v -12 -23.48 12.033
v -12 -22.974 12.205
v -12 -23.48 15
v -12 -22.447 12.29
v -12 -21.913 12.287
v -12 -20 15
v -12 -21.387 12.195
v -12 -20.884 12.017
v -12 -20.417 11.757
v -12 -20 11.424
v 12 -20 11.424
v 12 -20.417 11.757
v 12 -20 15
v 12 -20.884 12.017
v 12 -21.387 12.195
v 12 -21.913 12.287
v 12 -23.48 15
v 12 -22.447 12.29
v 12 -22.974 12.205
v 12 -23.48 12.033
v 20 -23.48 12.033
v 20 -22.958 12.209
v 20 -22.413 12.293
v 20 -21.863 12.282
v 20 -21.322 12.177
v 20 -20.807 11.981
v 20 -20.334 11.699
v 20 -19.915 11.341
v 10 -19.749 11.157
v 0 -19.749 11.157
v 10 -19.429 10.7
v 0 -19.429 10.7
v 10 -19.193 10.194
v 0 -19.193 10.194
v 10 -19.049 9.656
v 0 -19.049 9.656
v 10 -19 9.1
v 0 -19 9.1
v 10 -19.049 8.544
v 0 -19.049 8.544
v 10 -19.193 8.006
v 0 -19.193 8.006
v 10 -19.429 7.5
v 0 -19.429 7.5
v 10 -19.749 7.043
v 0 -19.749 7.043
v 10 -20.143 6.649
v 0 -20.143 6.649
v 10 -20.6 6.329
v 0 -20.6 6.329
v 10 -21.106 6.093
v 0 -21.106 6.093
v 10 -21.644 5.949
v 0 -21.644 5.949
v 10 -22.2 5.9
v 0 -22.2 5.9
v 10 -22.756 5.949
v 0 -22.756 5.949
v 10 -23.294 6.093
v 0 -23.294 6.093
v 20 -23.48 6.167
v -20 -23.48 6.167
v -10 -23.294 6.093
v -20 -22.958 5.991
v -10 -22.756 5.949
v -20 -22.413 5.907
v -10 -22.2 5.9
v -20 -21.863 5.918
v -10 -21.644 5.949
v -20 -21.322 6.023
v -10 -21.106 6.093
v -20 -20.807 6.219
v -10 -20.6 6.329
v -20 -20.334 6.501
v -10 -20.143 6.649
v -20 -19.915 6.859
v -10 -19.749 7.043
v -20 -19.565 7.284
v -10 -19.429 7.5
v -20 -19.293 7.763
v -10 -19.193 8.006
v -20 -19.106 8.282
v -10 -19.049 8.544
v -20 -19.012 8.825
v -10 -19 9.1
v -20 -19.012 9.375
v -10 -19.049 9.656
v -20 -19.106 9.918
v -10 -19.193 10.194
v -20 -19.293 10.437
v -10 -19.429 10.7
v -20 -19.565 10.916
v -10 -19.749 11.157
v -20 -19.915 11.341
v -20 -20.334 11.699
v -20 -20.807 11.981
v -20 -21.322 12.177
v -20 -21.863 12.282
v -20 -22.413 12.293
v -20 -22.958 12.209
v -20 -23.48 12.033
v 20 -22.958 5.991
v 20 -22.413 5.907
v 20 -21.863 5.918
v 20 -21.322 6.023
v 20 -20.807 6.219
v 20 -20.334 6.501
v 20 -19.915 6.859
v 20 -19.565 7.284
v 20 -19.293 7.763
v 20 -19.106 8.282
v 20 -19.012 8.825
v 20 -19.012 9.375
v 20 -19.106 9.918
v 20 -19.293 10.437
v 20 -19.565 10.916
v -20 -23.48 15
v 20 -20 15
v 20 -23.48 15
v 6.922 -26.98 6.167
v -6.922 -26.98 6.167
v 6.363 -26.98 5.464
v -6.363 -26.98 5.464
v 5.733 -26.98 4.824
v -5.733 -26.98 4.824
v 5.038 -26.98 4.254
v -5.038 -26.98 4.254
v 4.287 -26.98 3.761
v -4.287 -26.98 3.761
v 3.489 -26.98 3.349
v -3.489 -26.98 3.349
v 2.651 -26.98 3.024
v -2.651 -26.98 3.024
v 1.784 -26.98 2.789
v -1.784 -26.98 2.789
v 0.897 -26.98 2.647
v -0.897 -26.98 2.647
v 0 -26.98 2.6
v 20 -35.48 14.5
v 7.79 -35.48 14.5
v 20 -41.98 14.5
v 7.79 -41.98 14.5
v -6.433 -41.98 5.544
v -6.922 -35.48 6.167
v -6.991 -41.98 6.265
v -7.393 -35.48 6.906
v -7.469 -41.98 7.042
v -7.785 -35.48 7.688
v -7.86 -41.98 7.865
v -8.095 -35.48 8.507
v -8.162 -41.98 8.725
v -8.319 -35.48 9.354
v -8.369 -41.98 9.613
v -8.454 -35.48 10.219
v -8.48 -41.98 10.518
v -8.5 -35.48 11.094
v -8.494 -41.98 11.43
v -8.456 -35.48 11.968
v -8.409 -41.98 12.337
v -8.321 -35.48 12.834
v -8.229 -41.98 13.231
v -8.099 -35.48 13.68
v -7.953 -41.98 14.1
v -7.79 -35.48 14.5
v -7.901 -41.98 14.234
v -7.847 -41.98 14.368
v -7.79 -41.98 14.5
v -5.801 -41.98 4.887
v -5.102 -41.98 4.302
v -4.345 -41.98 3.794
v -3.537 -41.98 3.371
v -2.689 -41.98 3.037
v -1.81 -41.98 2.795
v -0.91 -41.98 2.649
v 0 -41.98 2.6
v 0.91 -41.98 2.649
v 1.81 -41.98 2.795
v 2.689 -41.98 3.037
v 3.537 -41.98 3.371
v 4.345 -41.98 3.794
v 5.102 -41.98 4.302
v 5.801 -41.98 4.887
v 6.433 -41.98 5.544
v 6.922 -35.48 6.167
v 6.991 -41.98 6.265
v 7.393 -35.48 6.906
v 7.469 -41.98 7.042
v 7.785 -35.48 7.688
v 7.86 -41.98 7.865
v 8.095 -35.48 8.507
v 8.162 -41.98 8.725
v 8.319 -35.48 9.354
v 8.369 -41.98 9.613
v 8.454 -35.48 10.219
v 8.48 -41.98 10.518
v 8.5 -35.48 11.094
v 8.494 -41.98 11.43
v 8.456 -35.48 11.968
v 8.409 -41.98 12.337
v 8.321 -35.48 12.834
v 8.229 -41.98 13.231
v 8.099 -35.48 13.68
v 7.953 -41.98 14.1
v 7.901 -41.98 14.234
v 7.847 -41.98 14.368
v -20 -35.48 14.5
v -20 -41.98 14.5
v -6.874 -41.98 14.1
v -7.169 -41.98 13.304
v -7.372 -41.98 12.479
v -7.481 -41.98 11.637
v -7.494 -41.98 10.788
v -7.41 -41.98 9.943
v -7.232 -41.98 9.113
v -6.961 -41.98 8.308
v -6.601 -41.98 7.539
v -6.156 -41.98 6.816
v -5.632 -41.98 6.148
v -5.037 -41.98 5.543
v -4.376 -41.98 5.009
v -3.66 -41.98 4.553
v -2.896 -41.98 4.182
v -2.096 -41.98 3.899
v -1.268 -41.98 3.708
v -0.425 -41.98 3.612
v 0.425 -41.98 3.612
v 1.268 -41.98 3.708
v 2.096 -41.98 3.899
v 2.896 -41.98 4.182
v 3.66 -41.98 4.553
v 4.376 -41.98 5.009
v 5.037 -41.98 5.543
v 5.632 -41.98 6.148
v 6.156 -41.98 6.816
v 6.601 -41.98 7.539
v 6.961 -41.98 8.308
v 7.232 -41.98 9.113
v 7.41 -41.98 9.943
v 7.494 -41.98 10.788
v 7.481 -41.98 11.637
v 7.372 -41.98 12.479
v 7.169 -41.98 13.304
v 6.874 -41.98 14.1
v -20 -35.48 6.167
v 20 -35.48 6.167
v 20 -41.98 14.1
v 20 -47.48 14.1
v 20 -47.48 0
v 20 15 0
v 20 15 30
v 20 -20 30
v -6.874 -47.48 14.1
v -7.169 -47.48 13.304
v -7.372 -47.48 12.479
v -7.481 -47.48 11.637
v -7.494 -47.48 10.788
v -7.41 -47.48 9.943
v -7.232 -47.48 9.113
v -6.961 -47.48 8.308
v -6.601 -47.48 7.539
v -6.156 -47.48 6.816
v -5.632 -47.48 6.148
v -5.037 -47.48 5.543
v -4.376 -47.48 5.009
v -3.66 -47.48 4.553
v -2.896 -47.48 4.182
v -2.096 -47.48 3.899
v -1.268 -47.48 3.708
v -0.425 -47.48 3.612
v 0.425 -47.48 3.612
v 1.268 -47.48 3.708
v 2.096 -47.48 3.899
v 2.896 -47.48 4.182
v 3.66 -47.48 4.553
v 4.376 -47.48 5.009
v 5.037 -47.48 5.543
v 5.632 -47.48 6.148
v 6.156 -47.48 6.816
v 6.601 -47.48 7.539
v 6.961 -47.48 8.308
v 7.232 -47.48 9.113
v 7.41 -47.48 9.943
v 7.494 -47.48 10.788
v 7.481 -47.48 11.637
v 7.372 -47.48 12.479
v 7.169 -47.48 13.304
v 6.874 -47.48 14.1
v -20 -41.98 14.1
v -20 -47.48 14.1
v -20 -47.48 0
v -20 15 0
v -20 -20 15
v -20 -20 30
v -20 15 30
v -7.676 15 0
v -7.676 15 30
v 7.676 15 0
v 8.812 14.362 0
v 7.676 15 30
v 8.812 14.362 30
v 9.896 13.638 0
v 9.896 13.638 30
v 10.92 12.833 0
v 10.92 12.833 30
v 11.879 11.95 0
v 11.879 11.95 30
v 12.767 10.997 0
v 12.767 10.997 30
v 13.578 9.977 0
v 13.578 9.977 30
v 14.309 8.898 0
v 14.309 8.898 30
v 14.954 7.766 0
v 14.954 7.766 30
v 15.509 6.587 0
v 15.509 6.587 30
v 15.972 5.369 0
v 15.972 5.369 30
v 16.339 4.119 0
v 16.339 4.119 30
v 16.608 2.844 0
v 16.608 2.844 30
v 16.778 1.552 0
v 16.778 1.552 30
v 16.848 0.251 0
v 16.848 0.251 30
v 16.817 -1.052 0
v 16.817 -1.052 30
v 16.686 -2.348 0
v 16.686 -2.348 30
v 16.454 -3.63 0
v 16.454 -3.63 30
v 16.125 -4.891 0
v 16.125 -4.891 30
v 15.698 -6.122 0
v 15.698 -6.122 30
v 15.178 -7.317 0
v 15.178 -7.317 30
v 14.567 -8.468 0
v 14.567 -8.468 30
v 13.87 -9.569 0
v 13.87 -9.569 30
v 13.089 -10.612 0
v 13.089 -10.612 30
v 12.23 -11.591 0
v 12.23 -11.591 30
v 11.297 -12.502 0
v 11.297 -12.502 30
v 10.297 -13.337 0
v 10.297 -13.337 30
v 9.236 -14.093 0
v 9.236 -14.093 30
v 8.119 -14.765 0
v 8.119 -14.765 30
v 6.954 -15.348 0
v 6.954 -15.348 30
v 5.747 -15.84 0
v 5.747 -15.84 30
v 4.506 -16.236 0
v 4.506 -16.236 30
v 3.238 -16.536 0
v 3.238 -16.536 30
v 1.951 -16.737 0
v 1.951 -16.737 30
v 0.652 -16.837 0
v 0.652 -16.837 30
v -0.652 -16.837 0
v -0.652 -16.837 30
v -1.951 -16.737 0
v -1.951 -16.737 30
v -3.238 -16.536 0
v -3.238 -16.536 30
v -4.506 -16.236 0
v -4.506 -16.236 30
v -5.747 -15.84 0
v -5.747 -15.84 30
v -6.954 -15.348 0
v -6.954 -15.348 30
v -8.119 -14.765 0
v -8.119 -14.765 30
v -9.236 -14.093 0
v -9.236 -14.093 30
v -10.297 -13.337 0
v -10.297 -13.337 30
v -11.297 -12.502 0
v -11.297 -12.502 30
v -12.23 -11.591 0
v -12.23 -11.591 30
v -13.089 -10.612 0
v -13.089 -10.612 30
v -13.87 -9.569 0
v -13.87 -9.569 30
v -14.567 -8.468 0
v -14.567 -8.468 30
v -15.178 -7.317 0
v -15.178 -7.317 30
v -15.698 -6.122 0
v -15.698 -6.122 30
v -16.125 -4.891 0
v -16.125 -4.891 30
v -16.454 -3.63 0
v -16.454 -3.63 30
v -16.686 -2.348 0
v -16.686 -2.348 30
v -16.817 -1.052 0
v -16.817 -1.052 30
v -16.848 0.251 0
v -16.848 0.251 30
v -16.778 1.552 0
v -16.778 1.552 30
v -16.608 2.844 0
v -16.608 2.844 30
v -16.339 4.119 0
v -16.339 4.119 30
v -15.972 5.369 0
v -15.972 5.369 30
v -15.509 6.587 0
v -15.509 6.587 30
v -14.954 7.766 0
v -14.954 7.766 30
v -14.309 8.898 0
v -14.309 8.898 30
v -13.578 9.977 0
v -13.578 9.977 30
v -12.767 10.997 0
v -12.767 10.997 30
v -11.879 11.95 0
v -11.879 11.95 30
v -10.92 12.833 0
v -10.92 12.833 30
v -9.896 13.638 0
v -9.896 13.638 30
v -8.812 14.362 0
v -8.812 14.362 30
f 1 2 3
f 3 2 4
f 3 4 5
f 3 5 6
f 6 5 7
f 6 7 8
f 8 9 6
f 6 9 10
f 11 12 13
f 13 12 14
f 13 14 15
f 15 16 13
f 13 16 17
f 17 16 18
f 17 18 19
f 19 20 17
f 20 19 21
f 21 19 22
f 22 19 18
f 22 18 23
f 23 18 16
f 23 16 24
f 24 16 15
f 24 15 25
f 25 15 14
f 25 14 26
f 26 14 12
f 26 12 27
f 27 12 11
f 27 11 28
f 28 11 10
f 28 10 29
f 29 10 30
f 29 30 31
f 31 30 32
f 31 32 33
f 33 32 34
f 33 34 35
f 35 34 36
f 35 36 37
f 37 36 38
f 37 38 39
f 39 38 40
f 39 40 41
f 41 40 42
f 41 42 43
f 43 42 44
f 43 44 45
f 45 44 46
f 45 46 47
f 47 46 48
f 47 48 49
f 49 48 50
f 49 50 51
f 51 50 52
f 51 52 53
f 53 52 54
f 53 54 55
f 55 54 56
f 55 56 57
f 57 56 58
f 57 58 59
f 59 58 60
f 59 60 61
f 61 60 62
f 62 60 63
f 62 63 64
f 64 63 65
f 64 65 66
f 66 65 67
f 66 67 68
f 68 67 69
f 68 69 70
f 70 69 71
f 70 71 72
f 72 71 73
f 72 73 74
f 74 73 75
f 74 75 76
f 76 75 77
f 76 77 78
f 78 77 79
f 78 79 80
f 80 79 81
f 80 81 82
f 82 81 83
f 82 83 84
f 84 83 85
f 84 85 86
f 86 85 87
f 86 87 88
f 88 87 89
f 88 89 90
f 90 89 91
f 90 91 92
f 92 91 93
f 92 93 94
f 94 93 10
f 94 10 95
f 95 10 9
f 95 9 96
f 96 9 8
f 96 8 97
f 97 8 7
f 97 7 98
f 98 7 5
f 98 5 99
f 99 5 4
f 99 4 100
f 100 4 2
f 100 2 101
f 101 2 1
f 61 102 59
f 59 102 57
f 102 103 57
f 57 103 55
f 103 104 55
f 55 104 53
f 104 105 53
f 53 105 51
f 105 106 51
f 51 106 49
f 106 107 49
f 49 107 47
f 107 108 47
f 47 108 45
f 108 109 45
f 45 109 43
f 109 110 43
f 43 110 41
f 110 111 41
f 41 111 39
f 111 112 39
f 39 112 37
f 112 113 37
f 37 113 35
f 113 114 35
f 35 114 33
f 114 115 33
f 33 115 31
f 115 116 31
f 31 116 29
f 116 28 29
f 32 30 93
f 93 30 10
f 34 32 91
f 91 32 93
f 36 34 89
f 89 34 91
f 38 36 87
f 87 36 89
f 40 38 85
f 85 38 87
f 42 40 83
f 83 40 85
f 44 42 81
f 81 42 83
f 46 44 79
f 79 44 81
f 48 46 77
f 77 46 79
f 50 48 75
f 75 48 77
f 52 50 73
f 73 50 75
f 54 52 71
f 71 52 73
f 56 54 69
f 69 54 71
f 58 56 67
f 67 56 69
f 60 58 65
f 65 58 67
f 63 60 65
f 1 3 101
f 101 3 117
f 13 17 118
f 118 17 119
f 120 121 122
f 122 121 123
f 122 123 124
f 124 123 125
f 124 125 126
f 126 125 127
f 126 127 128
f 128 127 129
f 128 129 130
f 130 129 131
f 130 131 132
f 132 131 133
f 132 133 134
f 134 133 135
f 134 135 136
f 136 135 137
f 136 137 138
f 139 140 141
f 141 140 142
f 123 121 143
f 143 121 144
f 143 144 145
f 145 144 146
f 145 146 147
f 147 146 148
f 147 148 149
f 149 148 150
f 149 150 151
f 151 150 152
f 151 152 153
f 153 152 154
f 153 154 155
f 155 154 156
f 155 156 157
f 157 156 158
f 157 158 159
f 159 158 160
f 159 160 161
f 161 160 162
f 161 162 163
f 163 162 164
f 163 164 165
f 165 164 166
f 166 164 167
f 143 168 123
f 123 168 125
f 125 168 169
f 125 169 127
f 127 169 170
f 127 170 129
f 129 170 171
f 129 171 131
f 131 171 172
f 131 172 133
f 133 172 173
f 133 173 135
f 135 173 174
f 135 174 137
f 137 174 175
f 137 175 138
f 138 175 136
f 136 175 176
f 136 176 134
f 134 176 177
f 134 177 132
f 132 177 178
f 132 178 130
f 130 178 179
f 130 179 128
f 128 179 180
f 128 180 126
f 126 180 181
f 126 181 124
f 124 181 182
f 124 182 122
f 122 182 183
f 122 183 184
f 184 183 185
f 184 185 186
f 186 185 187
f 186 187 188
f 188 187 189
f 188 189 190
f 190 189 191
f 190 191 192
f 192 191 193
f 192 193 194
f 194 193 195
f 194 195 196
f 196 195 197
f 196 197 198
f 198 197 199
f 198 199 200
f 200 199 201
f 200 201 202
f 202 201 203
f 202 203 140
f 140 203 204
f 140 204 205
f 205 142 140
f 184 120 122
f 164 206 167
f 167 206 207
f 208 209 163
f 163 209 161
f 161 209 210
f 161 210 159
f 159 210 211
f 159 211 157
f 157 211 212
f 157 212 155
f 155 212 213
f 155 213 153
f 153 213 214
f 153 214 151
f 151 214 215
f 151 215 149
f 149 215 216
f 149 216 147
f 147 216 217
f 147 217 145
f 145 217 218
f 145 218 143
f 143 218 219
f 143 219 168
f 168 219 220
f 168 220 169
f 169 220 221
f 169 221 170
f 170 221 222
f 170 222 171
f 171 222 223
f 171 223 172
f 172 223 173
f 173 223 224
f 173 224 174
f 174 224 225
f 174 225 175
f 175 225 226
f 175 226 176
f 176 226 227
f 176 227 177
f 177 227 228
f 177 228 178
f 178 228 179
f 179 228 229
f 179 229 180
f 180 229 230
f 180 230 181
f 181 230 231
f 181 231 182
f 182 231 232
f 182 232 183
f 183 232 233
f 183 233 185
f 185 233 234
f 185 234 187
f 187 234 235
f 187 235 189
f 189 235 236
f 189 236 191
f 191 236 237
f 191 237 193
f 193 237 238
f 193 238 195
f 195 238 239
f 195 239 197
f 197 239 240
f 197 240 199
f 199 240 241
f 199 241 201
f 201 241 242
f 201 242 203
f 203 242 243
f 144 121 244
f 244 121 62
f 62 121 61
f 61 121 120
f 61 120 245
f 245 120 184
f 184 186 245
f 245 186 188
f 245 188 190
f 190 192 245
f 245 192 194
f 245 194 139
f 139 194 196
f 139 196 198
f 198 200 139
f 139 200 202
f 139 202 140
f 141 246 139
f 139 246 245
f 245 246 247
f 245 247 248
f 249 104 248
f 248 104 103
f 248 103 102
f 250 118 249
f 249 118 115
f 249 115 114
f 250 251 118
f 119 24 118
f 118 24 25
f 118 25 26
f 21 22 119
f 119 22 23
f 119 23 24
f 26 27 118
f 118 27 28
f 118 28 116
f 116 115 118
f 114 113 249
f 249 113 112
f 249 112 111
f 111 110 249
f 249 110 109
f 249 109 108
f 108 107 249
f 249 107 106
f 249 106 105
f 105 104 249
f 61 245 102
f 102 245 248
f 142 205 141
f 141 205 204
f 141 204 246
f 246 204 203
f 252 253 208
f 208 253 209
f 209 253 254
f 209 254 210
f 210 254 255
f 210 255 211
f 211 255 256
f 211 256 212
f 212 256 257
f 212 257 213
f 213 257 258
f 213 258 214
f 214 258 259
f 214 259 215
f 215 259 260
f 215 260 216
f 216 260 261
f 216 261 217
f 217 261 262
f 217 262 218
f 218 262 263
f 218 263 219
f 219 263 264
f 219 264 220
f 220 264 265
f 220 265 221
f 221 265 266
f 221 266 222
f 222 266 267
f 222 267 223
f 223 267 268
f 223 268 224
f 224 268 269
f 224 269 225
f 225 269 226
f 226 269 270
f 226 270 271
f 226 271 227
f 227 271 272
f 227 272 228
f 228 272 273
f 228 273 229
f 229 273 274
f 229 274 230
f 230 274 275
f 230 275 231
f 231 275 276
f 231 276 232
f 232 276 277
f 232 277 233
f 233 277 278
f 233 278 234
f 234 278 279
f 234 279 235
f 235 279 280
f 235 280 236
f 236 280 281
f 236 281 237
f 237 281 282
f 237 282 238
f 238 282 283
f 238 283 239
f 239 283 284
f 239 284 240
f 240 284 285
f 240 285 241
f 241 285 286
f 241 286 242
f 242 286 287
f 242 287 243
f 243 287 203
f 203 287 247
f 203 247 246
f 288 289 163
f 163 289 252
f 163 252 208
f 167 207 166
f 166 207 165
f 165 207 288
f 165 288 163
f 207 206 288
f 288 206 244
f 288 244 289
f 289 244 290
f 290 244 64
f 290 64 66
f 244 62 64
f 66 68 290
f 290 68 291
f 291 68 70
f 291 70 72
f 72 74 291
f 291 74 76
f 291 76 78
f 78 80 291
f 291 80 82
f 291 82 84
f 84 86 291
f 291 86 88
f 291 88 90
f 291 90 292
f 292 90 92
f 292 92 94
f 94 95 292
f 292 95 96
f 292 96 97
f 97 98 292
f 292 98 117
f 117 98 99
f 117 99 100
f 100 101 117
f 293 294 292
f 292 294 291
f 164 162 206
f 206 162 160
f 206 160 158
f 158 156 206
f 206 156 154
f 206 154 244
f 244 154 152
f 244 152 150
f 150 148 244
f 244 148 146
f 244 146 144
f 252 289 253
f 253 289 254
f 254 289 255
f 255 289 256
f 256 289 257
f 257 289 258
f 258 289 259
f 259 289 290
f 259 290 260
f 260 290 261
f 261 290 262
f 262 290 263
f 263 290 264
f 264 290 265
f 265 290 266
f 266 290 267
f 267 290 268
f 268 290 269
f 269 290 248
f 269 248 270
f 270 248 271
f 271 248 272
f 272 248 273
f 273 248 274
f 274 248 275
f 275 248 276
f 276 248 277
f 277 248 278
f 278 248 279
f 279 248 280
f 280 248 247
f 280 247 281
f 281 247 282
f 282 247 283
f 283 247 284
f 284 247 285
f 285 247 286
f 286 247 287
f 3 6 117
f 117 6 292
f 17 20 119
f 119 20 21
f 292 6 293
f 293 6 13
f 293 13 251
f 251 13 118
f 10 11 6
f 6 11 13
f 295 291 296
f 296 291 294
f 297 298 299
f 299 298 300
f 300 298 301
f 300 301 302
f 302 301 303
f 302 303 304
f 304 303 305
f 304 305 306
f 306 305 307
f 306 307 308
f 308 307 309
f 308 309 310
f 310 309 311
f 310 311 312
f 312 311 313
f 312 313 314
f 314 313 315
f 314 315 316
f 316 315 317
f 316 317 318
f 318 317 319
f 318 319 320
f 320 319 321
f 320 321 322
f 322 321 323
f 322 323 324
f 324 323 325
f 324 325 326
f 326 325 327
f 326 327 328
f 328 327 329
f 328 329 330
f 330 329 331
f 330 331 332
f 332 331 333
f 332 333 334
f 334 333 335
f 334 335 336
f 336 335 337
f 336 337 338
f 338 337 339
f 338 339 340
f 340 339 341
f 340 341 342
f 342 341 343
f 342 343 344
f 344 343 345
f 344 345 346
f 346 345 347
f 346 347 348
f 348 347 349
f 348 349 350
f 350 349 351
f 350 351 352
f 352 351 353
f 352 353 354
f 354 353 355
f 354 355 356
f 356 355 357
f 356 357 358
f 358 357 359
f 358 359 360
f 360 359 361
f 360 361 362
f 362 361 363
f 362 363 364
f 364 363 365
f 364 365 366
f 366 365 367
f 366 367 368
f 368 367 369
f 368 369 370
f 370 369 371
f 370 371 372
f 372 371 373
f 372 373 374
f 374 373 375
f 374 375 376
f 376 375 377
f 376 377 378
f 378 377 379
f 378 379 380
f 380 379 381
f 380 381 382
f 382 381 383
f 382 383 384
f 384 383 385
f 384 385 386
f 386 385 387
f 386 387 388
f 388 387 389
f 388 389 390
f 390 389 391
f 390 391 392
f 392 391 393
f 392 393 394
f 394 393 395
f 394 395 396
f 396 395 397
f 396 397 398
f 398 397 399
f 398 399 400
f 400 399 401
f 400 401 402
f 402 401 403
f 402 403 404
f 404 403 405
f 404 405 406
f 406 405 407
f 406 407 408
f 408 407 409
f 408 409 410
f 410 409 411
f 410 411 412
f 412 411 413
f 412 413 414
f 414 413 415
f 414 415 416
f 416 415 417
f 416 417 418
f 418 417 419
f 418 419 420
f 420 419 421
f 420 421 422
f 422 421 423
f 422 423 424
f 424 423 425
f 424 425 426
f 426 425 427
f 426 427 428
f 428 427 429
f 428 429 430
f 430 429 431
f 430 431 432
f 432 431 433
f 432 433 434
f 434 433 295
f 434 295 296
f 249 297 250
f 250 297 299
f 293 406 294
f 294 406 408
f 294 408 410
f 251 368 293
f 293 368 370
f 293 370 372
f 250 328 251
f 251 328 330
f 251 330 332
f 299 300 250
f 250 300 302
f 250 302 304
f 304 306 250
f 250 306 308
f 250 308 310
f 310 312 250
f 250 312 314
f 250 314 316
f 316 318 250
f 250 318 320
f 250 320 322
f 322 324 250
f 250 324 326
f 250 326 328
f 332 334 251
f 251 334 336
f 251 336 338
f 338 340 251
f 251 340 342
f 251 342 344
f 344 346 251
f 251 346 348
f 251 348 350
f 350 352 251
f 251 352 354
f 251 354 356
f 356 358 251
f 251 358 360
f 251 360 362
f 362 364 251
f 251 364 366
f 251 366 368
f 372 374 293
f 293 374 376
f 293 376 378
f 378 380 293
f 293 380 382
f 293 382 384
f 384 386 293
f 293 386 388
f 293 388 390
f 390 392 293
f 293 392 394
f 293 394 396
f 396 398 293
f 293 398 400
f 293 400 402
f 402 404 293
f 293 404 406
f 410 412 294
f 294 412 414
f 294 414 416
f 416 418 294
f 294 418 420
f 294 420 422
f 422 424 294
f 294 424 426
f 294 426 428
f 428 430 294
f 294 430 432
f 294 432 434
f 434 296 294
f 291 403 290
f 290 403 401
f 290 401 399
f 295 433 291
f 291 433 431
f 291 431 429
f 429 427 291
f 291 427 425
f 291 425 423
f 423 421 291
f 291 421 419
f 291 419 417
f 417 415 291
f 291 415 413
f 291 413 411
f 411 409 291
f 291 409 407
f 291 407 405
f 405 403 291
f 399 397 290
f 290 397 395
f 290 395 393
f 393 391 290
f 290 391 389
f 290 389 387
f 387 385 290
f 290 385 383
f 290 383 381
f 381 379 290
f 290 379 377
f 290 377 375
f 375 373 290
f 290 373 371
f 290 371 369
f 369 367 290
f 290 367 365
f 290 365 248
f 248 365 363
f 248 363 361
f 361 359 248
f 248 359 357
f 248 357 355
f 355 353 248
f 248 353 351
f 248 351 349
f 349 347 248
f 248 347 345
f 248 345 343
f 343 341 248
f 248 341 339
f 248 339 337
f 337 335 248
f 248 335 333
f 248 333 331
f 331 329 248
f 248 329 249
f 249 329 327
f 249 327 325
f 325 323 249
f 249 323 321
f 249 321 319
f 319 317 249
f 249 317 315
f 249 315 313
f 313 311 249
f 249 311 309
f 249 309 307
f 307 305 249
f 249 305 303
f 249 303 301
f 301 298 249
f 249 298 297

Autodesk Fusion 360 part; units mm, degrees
sketch "Main Body" plane through (0, 0, 0) normal (0, 0, 1) x (1, 0, 0)
  circle A0 centre (0, 0) radius 16.85
  line L0 (-20, 20) -> (20, 20)
  line L1 (20, 20) -> (20, -20)
  line L2 (20, -20) -> (-20, -20)
  line L3 (-20, -20) -> (-20, 20)
  line L4 (-20, 15) -> (20, 15)
  point P0 (-20, 0)
  point P1 (0, 20)
  dimension "d1" = 33.7
  dimension "d2" = 40
  dimension "d3" = 15
extrude "Extrude1" add sketch "Main Body" along normal blind 30 contours A0 L1 L2 L3 L4
sketch "Antenna Holder" plane through (20, 0, 0) normal (1, 0, 0) x (0, 1, 0)
  line L0 (-20, 0) -> (15, 0)
  line L1 (15, 0) -> (15, 30)
  line L2 (15, 30) -> (-20, 30)
  line L3 (-20, 30) -> (-20, 0)
  circle A0 centre (-22.2, 9.1) radius 3.2
  line L4 (-23.48, 15) -> (-20, 15)
  line L5 (-20, 15) -> (-20, 0)
  line L6 (-20, 0) -> (-23.48, 0)
  line L7 (-23.48, 0) -> (-23.48, 15)
  point P0 (-23.48, 6.1672)
  dimension "d6" = 6.4
  dimension "d7" = 22.2
  dimension "d8" = 20.9
  dimension "d9" = 1.28
extrude "Extrude2" add sketch "Antenna Holder" against normal blind 40 contours L3 A0 L5 L6 L7 | L3 A0 L5 | L3 A0 L4 L5 L7
extrude "Extrude3" cut sketch "Antenna Holder" against normal blind 40 contours L3 A0 L5
sketch "Coax_Connector_holder" plane through (20, -21.74, 3.3881) normal (1, 0, 0) x (0, 1, 0)
  line L0 (-1.74, 2.779) -> (-13.74, 2.779)
  line L1 (-13.74, 2.779) -> (-13.74, -3.3881)
  line L2 (-13.74, -3.3881) -> (-1.74, -3.3881)
  line L3 (-1.74, -3.3881) -> (-1.74, 2.779)
  line L4 (1.74, -3.3881) -> (36.74, -3.3881)
  line L5 (-1.74, -3.3881) -> (-1.74, 11.6119)
  line L6 (-13.74, -3.3881) -> (-25.74, -3.3881)
  line L7 (-25.74, -3.3881) -> (-25.74, 11.6119)
  line L8 (-25.74, 11.6119) -> (-13.74, 11.6119)
  line L9 (-13.74, 11.6119) -> (-13.74, -3.3881)
  line L10 (-1.74, 11.6119) -> (1.74, 11.6119)
  point P0 (-1.74, 2.779)
  point P1 (-0.46, 5.7119)
  dimension "d15" = 12
  dimension "d16" = 12
extrude "Extrude4" add sketch "Coax_Connector_holder" against normal blind 40
sketch "Connector_Hole" plane through (0, -47.48, 0) normal (0, -1, 0) x (1, 0, 0)
  line L0 (20, 0) -> (20, 15)
  line L1 (20, 15) -> (-20, 15)
  line L2 (-20, 15) -> (-20, 0)
  line L3 (-20, 0) -> (20, 0)
  circle A0 centre (0, 11.1) radius 7.5
  circle A1 centre (0, 11.1) radius 8.5
  line L4 (-20, 30) -> (20, 30)
  line L5 (-20, 14.1) -> (20, 14.1)
  line L6 (-20, 14.5) -> (20, 14.5)
  dimension "d19" = 17
  dimension "d20" = 15
  dimension "d21" = 18.9
  dimension "d22" = 3
  dimension "d23" = 3.4
extrude "Extrude5" cut sketch "Connector_Hole" against normal blind 5.5 contours L0 A1 L5 L6 | L0 L1 A1 L6 | A0 A1 L5 L6 | L2 A1 L5 L6 | L1 A0 A1 L6 | A0 L5 L6 | A0 L5 | L1 L2 A1 L6 | A0 A1 L5 L6 | L1 A0 L6 | L1 A0 A1 L6
extrude "Extrude6" cut sketch "Connector_Hole" against normal blind 15 from surface at -5.5 contours L0 L1 A1 L6 | A0 A1 L5 L6 | A0 A1 L5 | L1 A0 A1 L6 | A0 L5 L6 | A0 L5 | L1 L2 A1 L6 | A0 A1 L5 L6 | L1 A0 L6 | L1 A0 A1 L6
sketch "Sketch5" plane through (0, 0, 15) normal (0, 0, 1) x (-1, 0, 0)
  line L0 (-20, 23.48) -> (-20, 20)
  line L1 (-20, 20) -> (20, 20)
  line L2 (20, 20) -> (20, 23.48)
  line L3 (20, 23.48) -> (-20, 23.48)
  line L4 (12, 20) -> (12, 23.48)
  line L5 (-12, 20) -> (-12, 23.48)
  dimension "d29" = 8
  dimension "d30" = 8
extrude "Extrude7" cut sketch "Sketch5" against normal blind 5 contours L1 L3 L4 L5
equation "d7 = 19 mm + 3.2 mm"
equation "d9 = d6 / 5"
equation "d10 = -d2"
equation "d12 = -d2"
equation "d17 = -d2"
equation "d21 = d8 - 2 mm"
equation "d22 = d20 / 5"
equation "d23 = d19 / 5"
